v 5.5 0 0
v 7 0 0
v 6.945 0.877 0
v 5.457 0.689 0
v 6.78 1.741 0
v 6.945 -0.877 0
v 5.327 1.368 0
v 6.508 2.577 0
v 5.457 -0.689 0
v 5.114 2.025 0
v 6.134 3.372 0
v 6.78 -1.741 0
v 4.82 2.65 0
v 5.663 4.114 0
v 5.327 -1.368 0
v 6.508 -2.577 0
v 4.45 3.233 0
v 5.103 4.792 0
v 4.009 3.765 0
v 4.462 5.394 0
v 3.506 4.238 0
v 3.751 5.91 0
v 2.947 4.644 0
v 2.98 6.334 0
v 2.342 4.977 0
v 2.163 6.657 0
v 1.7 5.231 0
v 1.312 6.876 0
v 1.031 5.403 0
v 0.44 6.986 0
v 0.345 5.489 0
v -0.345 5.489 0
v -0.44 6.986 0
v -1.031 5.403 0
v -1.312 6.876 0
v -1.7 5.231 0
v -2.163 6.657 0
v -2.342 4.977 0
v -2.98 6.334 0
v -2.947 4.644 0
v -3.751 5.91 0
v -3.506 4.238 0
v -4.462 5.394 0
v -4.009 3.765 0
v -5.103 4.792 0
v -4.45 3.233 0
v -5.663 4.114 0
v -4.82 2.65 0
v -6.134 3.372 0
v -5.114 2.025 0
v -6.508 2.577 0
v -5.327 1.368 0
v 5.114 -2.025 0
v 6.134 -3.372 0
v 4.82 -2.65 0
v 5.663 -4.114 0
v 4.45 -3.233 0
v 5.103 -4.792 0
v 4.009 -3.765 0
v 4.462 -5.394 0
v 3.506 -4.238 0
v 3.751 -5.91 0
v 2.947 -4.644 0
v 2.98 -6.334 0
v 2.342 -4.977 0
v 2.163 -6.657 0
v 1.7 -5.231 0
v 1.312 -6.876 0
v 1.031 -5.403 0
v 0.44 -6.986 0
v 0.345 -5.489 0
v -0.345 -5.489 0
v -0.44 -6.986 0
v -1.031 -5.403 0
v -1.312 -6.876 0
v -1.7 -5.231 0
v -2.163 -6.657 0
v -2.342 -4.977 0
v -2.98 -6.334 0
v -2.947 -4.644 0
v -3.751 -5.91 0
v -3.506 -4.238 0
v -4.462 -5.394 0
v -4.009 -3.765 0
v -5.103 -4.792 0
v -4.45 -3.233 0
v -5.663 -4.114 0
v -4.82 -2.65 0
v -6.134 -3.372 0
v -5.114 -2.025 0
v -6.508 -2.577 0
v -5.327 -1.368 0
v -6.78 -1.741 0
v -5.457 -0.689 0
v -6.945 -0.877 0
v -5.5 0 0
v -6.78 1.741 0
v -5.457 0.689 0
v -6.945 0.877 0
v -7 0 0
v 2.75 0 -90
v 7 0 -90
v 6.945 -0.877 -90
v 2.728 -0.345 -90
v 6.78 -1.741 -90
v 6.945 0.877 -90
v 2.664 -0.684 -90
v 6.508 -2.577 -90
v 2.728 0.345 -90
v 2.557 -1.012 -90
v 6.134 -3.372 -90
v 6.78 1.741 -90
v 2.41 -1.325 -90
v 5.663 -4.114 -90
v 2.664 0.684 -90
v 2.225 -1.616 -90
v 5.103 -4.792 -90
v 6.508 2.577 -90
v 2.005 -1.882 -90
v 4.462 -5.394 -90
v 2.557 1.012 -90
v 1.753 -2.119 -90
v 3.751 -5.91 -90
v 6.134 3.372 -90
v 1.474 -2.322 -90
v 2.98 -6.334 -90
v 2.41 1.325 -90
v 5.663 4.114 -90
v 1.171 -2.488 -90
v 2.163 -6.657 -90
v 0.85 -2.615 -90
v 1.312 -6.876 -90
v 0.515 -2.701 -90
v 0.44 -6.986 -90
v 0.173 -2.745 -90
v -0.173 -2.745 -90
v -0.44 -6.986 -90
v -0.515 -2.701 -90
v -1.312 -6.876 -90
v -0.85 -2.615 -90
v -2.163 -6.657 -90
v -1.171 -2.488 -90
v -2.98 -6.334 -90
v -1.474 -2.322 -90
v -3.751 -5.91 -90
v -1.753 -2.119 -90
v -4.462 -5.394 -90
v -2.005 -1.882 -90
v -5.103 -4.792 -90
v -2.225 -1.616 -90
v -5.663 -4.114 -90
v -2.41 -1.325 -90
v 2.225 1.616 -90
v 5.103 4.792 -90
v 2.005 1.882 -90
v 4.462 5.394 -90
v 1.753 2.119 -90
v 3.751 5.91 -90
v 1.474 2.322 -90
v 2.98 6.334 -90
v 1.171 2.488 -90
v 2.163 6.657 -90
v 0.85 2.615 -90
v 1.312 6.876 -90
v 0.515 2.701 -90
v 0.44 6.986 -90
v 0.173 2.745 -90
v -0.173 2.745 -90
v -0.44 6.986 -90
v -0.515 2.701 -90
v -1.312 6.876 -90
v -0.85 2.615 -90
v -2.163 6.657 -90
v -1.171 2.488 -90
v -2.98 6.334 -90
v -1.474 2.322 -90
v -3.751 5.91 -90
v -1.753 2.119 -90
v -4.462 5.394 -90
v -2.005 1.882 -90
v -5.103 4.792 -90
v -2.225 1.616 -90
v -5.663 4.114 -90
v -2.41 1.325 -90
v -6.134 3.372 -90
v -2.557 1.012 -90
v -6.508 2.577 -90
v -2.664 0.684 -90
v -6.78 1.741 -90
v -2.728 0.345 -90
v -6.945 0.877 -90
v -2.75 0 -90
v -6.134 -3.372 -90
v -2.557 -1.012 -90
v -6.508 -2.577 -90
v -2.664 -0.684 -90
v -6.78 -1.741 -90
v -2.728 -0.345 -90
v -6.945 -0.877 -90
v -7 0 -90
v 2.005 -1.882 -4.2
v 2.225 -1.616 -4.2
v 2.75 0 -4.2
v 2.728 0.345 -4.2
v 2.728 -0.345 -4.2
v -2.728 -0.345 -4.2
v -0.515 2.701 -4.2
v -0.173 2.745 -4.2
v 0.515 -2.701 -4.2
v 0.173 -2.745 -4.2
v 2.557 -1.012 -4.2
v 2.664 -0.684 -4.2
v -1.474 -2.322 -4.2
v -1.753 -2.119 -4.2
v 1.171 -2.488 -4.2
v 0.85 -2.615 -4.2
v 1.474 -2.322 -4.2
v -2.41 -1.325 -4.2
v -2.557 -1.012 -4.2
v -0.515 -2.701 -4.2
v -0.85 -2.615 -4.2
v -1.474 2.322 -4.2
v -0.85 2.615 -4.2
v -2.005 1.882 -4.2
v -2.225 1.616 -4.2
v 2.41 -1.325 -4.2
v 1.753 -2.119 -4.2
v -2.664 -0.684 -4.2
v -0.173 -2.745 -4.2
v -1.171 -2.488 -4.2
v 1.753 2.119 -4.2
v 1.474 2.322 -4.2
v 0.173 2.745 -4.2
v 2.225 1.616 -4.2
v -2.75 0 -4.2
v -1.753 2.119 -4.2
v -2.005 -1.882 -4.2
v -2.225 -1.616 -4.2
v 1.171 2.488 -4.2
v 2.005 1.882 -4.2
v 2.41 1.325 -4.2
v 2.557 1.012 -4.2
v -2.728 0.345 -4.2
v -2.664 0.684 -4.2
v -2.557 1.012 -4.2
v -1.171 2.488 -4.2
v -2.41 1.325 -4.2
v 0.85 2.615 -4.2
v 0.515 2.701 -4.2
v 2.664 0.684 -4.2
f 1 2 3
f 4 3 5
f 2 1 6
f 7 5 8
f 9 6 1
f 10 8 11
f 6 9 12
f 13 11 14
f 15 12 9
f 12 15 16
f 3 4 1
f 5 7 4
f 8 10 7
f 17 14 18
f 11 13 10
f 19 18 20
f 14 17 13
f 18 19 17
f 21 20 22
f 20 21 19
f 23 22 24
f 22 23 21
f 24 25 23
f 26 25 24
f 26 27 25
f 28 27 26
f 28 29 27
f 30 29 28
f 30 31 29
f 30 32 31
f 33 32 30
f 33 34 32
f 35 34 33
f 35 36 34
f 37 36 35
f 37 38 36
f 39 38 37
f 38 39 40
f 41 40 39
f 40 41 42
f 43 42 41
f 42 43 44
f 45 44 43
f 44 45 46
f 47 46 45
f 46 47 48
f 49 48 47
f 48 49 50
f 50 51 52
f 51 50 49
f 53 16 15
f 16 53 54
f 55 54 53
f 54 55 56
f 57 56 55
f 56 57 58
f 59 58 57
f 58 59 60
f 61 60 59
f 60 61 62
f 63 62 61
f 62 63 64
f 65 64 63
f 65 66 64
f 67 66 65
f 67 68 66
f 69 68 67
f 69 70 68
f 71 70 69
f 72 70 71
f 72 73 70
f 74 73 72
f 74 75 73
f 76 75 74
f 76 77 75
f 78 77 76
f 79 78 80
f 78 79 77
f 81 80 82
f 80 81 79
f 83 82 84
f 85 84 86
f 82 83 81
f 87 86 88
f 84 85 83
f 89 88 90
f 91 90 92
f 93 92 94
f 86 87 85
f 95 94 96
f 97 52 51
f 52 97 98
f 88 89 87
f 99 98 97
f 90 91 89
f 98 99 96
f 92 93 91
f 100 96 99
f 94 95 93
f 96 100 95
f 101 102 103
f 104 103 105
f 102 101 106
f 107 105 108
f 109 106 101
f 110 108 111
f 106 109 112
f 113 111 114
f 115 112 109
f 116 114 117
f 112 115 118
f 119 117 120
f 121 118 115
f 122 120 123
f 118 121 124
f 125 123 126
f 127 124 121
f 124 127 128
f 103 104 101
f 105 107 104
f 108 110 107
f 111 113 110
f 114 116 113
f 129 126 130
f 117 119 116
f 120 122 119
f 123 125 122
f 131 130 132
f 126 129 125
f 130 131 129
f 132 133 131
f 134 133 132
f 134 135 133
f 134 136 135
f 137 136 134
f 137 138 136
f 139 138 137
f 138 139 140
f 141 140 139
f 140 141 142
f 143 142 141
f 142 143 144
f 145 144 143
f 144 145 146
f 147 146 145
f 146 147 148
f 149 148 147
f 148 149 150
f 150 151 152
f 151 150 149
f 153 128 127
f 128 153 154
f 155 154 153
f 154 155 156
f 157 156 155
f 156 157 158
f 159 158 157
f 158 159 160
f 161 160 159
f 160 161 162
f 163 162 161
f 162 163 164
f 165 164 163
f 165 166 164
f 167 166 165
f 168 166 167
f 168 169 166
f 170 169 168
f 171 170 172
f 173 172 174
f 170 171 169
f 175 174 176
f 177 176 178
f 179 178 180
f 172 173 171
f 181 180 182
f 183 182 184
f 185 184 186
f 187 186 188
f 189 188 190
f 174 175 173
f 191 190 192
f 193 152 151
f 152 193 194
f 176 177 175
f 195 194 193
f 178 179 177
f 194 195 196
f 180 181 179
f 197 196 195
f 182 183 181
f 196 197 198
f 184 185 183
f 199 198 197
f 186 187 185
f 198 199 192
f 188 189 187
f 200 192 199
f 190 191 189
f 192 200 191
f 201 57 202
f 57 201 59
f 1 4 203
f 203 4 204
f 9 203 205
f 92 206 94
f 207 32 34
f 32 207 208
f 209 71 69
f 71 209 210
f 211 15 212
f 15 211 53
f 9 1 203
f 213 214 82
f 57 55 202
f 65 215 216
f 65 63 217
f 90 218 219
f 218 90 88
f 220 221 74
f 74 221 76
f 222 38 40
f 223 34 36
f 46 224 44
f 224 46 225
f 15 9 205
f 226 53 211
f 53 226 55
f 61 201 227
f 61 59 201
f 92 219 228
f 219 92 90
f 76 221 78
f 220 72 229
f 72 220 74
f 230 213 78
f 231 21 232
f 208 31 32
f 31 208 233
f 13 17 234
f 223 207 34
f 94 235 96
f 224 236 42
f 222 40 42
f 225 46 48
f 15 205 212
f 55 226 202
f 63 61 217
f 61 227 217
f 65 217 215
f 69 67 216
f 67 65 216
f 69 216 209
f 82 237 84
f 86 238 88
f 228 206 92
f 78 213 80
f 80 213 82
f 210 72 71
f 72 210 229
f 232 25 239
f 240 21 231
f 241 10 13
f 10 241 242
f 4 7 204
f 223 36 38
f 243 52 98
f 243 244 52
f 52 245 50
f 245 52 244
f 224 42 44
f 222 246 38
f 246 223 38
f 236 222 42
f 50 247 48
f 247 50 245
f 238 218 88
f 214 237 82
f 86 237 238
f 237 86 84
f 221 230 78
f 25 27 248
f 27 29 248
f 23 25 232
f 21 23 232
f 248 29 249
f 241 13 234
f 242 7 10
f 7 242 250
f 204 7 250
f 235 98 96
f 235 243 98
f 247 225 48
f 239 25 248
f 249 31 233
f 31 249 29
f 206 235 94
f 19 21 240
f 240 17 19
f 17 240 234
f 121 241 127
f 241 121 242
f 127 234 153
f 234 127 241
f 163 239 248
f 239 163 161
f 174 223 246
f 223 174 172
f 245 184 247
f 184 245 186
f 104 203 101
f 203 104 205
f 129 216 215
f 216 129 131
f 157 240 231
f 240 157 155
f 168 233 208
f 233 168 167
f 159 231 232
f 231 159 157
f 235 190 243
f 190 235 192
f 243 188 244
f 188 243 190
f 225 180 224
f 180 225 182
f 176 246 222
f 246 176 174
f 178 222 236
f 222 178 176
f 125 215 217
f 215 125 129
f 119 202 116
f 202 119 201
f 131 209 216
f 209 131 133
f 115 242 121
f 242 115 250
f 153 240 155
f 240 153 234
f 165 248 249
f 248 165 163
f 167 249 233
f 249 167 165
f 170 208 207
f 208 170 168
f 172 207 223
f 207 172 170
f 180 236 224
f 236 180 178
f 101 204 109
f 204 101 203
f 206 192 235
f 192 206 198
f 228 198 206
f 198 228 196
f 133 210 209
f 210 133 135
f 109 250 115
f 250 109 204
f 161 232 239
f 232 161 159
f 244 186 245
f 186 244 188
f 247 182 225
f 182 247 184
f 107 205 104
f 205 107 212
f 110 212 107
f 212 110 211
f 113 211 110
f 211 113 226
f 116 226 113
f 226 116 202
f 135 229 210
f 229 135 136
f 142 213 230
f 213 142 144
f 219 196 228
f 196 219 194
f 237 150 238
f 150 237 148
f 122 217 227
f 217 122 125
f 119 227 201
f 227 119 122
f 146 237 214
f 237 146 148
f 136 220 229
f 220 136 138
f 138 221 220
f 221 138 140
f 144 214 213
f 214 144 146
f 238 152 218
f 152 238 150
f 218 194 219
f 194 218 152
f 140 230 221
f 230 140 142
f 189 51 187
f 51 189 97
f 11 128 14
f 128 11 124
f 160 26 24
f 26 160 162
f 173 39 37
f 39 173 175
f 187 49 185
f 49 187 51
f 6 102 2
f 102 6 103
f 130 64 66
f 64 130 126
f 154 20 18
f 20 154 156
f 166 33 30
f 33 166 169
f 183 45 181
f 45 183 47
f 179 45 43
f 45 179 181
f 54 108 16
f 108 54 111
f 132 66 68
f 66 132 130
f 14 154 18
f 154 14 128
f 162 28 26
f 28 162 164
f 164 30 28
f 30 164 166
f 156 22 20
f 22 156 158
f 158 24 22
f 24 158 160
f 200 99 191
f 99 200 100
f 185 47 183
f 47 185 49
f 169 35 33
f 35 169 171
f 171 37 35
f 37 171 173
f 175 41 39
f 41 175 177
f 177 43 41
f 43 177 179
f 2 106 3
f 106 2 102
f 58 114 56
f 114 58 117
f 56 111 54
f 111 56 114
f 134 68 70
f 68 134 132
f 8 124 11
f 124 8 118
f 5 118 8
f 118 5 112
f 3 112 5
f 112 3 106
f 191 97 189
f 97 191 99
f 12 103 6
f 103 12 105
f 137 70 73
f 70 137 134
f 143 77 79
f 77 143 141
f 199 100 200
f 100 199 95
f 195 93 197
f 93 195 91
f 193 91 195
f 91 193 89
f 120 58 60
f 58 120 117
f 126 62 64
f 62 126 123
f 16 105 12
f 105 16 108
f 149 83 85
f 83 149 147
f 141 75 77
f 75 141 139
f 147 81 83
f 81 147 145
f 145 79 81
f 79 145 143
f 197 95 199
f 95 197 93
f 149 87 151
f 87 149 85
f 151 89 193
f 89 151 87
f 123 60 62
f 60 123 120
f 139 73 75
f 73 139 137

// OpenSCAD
$fn = 50;


difference() {
	union() {
		translate(v = [0, 0, -90.0000000000]) {
			cylinder(h = 90, r = 7.0000000000);
		}
		cylinder(h = 0, r = 13.0000000000);
	}
	union() {
		translate(v = [0, 0, 0]) {
			rotate(a = [0, 0, 0]) {
				difference() {
					union() {
						#translate(v = [0, 0, -90.0000000000]) {
							cylinder(h = 90, r = 2.2500000000);
						}
						#translate(v = [0, 0, -4.2000000000]) {
							cylinder(h = 4.2000000000, r1 = 2.7500000000, r2 = 5.5000000000);
						}
						#translate(v = [0, 0, -90.0000000000]) {
							cylinder(h = 90, r = 2.7500000000);
						}
						#translate(v = [0, 0, -90.0000000000]) {
							cylinder(h = 90, r = 2.2500000000);
						}
					}
					union();
				}
			}
		}
	}
}
